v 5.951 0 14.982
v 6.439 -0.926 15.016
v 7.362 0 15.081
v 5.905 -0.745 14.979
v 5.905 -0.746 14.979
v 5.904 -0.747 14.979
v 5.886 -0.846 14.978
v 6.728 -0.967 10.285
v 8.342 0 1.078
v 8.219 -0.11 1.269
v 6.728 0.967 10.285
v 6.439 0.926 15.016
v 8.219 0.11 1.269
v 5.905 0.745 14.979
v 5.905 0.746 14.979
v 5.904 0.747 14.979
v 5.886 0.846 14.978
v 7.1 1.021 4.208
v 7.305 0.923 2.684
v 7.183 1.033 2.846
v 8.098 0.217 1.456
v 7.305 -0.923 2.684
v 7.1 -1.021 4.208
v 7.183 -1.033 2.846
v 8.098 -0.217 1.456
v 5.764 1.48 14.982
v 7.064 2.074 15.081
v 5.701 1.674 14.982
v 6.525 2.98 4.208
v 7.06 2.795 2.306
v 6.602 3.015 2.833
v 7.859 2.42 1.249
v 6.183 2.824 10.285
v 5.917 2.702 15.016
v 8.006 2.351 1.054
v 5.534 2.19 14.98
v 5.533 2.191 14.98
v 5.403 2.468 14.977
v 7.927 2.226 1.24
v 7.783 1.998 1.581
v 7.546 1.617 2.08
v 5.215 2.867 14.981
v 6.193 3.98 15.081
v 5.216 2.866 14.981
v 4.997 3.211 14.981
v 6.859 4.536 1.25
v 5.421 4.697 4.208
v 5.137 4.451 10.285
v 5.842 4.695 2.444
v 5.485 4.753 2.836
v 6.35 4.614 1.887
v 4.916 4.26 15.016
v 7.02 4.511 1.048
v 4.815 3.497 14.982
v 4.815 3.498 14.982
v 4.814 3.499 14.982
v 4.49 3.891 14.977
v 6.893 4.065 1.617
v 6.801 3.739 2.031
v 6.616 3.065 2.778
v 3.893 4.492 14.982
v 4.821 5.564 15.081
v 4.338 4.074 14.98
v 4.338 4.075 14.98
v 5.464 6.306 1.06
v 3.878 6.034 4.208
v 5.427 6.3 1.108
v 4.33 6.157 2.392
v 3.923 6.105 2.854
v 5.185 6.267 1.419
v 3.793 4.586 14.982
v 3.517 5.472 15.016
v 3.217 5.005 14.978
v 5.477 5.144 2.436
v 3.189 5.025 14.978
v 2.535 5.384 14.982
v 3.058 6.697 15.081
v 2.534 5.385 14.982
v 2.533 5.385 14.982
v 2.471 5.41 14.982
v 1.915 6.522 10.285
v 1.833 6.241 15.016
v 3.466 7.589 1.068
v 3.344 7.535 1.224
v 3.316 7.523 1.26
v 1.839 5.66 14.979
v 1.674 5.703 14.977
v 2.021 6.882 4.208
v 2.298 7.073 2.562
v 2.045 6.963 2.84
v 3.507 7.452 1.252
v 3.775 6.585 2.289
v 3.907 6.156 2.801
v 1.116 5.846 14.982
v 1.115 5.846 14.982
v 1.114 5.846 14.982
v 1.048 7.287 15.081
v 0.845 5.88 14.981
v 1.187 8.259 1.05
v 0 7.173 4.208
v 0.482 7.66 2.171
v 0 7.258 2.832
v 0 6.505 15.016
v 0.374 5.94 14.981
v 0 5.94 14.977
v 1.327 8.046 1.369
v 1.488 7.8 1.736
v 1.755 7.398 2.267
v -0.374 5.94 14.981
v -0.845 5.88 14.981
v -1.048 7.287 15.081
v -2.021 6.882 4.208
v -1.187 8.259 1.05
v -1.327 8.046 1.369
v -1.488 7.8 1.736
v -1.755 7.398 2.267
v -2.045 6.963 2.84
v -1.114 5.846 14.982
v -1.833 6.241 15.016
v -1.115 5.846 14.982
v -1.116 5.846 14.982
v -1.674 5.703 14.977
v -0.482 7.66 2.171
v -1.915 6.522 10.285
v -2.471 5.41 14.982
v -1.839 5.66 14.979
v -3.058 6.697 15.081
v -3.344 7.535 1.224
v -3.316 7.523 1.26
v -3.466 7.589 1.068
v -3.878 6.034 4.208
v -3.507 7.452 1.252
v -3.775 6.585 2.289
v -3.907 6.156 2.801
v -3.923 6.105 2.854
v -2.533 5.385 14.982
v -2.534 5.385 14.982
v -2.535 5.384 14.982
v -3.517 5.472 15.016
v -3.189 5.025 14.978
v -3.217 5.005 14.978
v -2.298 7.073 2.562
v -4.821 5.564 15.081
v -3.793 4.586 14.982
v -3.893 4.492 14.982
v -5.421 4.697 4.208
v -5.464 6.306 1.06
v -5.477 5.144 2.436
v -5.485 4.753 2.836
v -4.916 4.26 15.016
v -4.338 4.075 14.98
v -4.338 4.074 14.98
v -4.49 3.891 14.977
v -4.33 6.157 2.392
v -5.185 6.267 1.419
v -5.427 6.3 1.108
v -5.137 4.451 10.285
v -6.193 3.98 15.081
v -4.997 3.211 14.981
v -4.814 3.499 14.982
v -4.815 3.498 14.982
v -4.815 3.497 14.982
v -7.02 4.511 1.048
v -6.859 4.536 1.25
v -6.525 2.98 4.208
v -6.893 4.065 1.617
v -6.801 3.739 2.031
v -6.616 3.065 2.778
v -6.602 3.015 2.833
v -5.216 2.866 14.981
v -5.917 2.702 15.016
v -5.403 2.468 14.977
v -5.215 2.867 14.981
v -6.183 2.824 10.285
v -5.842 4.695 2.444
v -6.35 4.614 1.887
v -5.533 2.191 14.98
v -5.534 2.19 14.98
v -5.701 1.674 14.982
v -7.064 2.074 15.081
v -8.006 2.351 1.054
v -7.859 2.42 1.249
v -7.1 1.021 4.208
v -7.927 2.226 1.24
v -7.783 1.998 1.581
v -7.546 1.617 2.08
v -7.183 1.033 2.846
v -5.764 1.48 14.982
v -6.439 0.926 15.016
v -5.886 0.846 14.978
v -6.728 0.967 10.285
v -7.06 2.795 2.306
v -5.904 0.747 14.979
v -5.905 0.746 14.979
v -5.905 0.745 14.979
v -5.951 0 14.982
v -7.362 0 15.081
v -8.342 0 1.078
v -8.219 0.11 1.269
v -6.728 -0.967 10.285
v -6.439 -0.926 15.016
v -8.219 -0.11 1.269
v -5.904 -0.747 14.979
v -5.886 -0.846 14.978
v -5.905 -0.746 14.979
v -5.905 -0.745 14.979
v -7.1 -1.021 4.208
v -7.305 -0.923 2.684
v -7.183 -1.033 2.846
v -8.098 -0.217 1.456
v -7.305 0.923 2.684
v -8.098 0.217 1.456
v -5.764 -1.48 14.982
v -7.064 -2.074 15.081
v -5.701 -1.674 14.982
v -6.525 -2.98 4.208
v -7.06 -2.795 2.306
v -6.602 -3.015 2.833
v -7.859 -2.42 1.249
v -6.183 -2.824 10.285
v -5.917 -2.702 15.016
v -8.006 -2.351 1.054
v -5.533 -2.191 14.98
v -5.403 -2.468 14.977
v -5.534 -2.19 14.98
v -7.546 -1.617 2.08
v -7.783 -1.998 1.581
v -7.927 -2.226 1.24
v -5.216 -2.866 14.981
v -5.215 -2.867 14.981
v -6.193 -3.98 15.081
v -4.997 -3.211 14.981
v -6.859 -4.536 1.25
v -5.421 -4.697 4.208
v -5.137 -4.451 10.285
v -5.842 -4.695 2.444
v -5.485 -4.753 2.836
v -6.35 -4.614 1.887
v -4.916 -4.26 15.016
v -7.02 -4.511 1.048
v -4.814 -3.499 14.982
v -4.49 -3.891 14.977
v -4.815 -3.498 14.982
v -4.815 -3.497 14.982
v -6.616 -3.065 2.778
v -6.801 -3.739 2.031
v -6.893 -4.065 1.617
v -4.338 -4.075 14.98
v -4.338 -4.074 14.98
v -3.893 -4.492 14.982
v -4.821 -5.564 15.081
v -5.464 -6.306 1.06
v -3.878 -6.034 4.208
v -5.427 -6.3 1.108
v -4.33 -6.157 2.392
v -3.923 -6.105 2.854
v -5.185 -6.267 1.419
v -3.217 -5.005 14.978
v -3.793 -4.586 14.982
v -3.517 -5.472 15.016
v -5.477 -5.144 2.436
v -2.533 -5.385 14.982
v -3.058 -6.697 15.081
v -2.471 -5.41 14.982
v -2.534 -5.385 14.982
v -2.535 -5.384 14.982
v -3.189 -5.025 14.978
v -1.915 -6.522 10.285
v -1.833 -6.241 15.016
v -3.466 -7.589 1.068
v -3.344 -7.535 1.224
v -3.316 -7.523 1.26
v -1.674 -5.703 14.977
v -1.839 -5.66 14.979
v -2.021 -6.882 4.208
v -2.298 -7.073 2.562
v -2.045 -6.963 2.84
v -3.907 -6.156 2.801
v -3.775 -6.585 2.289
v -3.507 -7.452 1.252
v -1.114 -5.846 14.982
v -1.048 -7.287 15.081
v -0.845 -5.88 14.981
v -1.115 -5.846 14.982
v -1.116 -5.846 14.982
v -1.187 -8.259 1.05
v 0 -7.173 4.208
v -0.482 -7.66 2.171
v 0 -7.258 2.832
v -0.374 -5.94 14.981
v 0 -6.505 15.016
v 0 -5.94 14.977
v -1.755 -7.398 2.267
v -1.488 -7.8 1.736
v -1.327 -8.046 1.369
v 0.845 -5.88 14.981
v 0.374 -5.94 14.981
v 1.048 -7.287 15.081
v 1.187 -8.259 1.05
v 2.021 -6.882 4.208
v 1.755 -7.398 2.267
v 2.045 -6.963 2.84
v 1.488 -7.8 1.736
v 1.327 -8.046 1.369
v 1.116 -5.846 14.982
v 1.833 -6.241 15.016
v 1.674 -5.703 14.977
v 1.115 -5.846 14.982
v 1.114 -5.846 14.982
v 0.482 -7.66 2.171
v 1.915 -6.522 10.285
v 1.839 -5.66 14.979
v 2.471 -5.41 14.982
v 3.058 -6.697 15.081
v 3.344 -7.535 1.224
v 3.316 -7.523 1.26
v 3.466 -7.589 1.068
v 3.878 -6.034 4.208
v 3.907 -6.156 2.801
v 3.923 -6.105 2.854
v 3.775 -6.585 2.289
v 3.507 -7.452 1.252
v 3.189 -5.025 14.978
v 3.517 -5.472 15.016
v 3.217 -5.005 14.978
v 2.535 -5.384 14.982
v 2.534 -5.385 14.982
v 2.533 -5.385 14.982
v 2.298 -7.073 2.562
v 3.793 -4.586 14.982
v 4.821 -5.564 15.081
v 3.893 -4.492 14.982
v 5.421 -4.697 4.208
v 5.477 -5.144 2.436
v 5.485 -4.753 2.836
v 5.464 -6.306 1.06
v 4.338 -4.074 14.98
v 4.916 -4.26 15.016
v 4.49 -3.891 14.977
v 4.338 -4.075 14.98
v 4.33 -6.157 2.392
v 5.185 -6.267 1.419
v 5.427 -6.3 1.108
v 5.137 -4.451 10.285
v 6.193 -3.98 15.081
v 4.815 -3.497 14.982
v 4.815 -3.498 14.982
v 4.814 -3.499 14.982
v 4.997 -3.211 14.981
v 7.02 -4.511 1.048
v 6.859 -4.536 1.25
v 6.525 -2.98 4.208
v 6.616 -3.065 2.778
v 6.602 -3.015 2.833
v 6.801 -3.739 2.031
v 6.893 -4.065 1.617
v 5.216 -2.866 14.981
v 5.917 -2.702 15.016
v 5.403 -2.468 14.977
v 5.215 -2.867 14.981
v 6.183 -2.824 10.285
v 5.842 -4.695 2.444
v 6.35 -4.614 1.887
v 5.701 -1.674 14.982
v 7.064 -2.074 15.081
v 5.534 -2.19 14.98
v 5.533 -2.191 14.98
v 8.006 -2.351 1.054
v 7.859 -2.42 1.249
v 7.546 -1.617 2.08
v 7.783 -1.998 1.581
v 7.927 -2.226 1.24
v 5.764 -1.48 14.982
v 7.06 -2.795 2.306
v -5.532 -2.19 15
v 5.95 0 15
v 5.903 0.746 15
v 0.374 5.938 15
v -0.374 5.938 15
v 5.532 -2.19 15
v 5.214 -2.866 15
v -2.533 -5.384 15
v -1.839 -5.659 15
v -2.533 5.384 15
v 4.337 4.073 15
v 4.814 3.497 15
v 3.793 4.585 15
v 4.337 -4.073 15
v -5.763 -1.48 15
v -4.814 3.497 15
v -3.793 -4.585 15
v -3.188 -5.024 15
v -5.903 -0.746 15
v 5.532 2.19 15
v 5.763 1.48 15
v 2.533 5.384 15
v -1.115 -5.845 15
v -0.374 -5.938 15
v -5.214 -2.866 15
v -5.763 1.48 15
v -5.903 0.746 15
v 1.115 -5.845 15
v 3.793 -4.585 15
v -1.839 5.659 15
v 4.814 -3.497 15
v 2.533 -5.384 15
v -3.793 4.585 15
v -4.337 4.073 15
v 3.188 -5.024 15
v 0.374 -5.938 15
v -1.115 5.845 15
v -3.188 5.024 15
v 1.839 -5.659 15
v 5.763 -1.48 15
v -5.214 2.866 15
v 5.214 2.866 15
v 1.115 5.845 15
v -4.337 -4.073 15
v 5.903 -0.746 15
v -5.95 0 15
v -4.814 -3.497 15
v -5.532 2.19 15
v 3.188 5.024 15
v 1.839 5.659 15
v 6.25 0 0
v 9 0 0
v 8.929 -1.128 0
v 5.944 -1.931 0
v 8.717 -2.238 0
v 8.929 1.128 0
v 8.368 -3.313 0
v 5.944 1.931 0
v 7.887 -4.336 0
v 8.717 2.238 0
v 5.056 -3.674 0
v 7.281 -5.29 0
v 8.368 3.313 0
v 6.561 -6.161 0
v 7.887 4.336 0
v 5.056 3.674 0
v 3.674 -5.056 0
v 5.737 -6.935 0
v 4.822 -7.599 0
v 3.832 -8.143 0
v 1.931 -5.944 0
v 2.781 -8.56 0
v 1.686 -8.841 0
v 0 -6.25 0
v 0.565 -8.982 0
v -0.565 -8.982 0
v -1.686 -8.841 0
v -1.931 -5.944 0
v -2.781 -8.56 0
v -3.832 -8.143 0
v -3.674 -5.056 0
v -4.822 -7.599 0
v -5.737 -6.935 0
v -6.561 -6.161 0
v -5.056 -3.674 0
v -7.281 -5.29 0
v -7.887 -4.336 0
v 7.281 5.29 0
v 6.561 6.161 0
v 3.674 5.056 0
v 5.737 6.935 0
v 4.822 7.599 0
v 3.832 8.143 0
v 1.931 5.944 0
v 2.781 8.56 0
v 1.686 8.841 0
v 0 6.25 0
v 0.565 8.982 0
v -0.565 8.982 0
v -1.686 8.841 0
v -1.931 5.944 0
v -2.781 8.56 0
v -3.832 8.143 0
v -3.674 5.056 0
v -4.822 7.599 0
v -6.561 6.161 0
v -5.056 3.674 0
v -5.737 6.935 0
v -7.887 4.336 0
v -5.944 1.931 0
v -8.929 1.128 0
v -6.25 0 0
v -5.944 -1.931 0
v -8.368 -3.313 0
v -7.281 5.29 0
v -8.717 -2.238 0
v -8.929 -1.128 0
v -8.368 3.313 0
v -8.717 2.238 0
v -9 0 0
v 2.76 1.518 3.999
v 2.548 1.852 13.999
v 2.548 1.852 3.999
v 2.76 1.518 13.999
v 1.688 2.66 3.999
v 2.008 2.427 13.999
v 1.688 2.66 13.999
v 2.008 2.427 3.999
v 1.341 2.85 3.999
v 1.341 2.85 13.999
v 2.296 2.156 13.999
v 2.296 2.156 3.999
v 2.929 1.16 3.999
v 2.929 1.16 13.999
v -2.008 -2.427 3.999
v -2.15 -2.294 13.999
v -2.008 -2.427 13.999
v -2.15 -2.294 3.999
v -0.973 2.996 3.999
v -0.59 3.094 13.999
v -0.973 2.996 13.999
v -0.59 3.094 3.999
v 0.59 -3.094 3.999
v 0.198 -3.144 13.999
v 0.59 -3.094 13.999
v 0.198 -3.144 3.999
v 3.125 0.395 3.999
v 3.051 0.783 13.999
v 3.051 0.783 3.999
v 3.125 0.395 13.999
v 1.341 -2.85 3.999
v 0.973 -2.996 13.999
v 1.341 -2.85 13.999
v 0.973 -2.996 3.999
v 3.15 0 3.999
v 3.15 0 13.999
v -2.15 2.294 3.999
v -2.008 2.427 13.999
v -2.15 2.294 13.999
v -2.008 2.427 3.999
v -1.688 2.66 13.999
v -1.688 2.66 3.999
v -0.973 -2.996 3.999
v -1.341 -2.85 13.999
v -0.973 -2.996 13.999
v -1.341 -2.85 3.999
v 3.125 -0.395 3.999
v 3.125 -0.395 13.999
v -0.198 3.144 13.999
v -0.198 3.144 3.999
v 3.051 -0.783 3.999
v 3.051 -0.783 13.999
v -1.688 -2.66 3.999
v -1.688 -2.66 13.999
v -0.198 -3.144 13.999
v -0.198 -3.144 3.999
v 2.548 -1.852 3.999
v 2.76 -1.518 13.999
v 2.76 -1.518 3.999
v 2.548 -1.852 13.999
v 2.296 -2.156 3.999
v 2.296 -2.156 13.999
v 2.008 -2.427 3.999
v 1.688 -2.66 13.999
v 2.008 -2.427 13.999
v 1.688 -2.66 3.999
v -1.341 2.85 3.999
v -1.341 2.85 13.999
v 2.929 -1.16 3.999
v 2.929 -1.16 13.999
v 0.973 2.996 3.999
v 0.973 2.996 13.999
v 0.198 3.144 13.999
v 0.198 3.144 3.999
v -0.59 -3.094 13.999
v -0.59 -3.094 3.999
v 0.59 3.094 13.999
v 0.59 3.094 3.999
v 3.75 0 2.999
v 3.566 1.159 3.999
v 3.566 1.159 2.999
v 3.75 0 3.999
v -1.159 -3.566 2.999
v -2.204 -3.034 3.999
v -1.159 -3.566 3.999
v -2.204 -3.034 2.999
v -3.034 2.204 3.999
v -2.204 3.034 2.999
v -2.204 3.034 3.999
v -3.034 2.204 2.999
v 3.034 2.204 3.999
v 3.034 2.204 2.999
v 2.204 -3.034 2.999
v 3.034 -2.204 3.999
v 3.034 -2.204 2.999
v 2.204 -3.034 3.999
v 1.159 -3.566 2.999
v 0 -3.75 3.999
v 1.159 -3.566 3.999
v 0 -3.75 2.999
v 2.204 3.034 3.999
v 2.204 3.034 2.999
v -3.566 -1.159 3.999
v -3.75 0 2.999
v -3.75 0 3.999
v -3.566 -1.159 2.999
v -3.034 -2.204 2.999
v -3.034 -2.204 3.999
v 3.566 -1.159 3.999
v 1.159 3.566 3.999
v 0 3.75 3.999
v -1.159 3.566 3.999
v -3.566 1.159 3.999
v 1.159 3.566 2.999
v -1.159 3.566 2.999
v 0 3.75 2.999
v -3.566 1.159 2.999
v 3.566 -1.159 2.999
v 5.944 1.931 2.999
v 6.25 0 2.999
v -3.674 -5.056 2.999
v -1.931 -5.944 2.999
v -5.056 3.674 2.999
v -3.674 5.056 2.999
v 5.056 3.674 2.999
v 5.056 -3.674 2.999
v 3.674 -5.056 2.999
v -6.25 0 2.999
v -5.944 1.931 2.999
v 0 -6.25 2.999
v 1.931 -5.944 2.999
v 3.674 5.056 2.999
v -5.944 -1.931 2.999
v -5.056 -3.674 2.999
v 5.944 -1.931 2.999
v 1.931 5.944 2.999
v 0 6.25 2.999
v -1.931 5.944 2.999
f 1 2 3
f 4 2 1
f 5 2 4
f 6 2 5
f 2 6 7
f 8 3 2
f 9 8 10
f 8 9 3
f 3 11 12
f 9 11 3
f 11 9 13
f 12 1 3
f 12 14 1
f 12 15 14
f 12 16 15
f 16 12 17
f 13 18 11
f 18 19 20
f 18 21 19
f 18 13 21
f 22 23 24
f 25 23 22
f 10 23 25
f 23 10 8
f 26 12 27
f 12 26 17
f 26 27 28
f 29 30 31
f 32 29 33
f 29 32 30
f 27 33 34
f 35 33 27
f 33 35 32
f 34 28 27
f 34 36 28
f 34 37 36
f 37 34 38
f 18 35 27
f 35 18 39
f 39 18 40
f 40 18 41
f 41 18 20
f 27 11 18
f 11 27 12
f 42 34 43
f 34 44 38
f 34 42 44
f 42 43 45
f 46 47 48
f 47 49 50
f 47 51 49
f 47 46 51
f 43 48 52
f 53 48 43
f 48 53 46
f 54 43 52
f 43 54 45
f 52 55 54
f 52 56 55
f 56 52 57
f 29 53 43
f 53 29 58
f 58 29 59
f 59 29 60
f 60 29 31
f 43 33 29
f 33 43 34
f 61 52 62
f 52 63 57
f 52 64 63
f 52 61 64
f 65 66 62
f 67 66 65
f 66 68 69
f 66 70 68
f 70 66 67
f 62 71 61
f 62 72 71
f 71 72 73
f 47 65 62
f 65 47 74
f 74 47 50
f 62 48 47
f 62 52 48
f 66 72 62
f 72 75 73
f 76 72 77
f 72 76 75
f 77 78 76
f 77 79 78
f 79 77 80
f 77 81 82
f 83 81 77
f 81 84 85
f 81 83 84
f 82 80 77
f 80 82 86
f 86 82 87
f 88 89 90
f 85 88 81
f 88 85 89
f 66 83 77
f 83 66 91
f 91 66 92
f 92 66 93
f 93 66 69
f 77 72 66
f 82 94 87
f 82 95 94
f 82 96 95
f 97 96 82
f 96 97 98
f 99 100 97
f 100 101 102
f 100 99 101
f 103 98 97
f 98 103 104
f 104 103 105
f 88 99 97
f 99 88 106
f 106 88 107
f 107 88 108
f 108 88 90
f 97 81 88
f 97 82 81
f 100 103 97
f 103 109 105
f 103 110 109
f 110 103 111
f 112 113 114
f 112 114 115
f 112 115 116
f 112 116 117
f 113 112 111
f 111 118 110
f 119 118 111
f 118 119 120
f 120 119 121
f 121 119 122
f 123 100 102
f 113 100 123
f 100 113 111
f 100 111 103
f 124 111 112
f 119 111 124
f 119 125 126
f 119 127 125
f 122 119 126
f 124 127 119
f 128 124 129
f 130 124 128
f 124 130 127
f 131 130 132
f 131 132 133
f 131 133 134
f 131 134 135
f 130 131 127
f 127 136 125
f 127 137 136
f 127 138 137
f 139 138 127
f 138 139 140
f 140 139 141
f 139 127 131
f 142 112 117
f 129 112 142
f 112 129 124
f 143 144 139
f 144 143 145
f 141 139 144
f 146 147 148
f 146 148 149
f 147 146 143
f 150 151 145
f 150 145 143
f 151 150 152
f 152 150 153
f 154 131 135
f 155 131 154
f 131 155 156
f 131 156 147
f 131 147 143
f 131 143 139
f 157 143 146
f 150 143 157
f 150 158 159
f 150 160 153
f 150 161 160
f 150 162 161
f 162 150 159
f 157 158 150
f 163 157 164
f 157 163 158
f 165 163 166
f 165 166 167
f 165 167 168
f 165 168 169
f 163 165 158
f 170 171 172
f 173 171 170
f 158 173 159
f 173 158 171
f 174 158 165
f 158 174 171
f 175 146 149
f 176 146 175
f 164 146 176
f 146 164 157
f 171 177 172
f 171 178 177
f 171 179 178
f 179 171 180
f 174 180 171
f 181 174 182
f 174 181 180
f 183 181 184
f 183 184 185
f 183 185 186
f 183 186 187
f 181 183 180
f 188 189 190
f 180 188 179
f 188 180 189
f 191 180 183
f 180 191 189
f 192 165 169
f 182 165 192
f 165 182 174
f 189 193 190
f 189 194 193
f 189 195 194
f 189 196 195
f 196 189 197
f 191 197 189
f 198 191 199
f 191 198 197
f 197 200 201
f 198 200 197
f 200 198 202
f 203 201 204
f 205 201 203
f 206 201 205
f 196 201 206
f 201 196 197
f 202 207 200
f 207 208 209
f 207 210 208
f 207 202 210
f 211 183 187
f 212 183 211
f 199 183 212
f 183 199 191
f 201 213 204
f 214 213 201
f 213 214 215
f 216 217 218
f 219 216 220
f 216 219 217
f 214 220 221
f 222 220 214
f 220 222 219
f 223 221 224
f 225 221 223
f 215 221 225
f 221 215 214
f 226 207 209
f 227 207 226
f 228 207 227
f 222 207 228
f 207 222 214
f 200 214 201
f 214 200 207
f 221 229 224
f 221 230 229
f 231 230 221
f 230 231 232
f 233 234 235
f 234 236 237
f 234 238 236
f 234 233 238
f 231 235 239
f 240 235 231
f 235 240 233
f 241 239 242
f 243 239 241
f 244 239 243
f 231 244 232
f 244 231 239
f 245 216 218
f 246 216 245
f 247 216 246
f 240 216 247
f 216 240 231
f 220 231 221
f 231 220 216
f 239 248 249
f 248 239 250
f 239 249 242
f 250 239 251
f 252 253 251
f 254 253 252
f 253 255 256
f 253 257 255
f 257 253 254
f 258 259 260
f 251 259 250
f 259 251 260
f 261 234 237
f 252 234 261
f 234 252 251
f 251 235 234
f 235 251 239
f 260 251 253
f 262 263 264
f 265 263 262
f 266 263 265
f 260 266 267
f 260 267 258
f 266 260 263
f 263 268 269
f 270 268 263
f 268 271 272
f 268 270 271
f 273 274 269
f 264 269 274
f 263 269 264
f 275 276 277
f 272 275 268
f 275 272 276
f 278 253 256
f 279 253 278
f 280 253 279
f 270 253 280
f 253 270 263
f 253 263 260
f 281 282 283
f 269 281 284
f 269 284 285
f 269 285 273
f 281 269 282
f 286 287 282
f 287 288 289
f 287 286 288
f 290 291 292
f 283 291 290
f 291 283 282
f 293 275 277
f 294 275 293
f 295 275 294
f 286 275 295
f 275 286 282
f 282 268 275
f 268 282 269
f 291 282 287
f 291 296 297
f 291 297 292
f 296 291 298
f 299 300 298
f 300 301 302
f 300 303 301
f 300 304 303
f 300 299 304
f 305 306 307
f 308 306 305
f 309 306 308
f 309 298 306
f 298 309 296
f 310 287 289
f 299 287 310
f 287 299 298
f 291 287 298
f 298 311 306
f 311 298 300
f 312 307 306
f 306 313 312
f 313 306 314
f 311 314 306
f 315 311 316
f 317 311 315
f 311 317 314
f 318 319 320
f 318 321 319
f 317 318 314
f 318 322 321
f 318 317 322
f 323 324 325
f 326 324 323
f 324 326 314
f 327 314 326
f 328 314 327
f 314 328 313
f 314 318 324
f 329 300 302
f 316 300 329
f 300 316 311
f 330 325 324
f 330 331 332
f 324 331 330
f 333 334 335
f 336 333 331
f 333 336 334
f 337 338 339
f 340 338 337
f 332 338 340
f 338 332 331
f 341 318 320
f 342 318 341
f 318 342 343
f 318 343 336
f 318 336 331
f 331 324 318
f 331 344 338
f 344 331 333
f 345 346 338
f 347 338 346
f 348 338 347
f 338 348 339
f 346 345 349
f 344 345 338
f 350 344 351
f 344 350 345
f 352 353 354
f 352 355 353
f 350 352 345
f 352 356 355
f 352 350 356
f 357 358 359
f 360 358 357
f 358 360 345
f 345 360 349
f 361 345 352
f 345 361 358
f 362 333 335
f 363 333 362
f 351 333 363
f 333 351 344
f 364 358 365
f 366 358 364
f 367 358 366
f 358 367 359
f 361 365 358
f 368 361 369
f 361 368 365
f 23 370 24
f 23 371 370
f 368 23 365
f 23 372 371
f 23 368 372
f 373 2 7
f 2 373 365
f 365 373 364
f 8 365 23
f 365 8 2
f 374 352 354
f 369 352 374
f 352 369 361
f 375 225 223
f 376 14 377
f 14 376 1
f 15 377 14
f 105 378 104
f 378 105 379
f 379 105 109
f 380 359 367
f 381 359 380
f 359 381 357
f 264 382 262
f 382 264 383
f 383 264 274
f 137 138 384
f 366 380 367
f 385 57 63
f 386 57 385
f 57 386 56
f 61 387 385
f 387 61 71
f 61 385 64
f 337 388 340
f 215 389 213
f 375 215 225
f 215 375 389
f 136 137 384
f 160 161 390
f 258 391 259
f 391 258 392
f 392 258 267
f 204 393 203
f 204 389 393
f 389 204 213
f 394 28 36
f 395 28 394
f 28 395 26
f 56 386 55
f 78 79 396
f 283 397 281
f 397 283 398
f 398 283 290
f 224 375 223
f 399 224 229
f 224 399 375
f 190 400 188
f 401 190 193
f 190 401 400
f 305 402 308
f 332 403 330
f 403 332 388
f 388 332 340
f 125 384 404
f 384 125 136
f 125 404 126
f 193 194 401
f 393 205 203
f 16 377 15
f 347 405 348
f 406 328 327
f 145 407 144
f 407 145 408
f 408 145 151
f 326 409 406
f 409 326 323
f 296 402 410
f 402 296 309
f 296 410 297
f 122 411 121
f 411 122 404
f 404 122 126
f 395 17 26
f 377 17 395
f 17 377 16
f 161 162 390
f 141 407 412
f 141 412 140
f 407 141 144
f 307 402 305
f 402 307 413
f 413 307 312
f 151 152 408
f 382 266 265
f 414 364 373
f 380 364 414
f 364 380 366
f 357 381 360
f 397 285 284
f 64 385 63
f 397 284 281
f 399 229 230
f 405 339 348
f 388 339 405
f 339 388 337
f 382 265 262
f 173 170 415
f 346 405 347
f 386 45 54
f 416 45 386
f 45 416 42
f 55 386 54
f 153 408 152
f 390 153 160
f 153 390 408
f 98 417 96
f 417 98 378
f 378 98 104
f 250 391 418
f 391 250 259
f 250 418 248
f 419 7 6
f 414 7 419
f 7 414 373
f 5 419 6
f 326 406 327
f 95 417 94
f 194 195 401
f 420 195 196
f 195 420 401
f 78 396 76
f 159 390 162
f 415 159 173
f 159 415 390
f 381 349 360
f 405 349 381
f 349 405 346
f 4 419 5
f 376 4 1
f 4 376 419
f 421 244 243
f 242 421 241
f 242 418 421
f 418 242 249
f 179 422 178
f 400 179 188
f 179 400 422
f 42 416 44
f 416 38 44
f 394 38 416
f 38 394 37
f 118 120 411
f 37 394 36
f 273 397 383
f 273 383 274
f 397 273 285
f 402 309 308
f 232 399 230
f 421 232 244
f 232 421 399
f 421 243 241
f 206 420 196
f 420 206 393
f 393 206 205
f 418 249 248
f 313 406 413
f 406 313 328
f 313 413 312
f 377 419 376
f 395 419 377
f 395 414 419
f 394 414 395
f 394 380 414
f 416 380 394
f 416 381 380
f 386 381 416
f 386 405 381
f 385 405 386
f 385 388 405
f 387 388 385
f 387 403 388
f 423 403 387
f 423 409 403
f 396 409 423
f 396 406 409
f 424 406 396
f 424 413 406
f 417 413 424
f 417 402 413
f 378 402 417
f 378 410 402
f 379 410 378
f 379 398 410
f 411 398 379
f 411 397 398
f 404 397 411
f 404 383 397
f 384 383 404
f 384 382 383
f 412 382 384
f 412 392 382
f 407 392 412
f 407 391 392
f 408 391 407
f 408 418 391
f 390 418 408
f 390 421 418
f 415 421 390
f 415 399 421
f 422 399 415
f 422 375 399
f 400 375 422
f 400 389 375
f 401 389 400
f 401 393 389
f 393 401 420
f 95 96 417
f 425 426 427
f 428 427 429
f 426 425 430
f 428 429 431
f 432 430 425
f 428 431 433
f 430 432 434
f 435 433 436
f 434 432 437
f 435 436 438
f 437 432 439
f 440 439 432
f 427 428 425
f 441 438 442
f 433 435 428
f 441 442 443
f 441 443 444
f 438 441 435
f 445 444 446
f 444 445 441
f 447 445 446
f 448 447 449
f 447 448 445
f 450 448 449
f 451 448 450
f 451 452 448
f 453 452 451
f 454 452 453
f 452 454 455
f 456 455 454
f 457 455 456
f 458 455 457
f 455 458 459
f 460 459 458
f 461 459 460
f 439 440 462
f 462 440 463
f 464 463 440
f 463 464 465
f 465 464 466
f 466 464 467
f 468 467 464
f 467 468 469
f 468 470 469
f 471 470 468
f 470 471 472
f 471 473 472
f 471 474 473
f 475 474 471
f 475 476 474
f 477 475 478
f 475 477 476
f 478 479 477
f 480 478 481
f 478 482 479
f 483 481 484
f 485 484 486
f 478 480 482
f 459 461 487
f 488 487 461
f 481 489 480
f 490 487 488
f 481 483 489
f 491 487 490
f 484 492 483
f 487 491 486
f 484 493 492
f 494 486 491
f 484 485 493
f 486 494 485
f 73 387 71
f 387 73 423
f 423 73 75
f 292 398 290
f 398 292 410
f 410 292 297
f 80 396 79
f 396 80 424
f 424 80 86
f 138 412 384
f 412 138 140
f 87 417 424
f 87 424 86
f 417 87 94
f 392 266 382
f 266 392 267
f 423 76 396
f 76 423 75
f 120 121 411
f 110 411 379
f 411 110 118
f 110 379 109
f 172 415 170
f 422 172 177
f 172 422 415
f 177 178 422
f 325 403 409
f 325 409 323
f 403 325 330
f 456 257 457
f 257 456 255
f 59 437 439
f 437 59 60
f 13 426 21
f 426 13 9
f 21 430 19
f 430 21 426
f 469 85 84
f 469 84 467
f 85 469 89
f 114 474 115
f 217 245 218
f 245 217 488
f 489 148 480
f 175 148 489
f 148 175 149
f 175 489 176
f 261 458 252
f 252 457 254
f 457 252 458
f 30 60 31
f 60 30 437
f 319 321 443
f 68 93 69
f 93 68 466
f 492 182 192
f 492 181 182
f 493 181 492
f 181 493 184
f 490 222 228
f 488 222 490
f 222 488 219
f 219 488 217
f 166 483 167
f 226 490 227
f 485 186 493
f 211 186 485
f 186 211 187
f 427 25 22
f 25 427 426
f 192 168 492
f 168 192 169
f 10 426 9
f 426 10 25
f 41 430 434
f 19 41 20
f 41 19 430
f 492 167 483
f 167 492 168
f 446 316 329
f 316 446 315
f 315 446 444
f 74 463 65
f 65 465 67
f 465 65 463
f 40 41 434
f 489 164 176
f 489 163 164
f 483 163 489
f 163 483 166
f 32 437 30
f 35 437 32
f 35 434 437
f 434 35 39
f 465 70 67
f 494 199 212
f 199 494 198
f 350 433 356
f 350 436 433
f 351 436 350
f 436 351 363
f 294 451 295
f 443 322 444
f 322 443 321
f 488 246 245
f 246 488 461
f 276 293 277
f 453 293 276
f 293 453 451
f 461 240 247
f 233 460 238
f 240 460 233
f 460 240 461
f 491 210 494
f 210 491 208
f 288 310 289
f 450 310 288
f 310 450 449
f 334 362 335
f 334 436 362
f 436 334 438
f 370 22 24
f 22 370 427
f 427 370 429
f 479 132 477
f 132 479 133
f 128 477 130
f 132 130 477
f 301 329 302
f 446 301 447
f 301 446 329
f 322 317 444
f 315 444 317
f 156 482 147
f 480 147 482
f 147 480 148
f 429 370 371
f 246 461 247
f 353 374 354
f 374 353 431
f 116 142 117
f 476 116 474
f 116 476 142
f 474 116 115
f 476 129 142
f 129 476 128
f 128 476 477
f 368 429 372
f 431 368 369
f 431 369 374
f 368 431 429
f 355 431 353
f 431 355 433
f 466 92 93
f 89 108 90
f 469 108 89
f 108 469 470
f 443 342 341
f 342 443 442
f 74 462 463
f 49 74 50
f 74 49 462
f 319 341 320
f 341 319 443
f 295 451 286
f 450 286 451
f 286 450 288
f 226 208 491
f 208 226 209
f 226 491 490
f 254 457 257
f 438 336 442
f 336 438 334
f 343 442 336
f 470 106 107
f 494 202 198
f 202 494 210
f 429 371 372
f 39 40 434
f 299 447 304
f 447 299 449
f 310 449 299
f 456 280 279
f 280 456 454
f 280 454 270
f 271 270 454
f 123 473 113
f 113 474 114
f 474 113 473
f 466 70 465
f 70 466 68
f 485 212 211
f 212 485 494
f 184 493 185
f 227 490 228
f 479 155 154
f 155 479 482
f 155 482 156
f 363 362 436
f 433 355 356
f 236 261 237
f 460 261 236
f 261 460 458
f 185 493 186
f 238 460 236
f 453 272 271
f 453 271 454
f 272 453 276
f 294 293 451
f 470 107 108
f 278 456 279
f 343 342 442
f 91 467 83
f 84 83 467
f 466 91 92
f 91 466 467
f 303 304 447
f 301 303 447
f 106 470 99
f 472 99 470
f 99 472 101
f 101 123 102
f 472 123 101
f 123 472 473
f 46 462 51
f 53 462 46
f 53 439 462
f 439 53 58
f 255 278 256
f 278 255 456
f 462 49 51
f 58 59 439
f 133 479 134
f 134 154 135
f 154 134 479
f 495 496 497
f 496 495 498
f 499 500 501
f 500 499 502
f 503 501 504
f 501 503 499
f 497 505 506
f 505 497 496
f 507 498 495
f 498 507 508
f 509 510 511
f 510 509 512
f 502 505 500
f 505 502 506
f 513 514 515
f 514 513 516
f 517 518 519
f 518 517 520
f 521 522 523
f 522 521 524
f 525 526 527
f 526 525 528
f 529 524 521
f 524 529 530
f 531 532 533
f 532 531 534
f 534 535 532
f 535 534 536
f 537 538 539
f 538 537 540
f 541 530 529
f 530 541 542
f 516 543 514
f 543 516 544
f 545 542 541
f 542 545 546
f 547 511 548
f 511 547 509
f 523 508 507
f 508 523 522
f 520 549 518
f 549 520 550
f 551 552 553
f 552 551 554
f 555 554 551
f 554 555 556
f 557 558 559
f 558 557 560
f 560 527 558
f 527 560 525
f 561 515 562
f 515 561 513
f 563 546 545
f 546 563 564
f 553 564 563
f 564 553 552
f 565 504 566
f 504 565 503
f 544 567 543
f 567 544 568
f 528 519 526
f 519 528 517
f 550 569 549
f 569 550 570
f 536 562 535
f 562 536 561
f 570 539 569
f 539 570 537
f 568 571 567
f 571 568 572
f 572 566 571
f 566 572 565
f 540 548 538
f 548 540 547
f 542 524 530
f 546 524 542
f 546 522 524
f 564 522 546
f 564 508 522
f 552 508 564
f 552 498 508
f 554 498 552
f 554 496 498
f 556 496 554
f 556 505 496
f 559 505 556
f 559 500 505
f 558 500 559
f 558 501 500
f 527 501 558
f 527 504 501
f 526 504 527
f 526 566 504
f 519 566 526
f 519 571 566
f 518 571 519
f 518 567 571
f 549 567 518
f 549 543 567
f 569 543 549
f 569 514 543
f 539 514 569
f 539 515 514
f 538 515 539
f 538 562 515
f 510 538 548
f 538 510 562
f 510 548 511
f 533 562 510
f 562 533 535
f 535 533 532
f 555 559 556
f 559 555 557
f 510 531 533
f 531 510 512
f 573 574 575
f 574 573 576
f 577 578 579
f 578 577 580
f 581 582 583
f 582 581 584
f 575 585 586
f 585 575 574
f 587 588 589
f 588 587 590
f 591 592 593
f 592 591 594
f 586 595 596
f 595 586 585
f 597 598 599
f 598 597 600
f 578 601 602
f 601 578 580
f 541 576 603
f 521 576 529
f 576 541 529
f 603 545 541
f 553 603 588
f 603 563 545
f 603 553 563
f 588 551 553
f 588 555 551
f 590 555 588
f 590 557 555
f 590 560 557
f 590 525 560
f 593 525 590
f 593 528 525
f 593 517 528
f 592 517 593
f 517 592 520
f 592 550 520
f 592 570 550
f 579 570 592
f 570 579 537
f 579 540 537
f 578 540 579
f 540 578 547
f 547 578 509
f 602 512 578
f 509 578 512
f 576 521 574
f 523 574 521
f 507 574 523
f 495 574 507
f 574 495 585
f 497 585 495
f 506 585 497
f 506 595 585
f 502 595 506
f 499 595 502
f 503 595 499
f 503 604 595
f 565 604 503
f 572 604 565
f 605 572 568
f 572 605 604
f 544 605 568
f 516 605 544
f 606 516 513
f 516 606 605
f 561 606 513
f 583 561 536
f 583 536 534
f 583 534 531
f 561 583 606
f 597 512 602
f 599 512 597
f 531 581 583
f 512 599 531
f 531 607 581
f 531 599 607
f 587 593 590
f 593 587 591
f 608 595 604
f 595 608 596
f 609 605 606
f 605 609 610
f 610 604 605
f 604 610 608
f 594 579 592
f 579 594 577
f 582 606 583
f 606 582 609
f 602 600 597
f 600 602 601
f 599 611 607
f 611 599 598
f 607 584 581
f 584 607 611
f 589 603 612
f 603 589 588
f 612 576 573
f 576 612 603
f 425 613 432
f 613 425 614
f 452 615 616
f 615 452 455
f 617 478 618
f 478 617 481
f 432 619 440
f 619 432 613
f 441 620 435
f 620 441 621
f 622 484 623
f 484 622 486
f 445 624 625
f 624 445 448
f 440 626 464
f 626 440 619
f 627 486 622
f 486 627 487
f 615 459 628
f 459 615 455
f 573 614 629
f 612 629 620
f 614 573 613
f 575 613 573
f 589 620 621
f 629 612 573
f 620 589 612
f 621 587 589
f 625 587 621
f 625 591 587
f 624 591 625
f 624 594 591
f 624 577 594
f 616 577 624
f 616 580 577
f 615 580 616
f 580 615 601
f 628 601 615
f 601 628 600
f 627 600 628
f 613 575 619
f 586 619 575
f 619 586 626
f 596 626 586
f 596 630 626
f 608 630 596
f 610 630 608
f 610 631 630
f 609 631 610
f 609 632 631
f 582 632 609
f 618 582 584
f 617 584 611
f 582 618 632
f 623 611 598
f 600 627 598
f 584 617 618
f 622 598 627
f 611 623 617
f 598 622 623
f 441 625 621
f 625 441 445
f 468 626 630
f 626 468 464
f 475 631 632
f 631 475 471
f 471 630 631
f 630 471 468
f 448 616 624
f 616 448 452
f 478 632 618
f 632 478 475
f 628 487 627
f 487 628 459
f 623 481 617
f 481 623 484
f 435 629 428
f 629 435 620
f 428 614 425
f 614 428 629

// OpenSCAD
//////////////////////////
// Customizable settings
//////////////////////////


// Diameter of the hole on the bottom (in mm).
// 底面の穴の直径（単位：mm）
HoleDiameter = 6.0 + 0.3;

// Depth of the hole in the bottom (in mm).  If you want the hole to go all the way through then set this to a number larger than the total height of the object.
// 底面に開ける穴の深さ（単位：mm）。 穴を完全に貫通させたい場合は、オブジェクトの全高よりも大きな数値を設定してください。
HoleDepth = 14;

// If you want a D-shaped hole, set this to the thickness of the flat side (in mm).  Larger values for the flat make the hole smaller.
// D型の穴にしたい場合は、平らな面の厚さ（単位：mm）を設定してください。 平面の値を大きくすると、穴が小さくなります。
HoleFlatThickness = 1.0;

Hole2Diameter = 7.5;
Hole2Depth = 4;

Hole3Diameter = 12.5;
Hole3Depth = 3;


// Height (in mm).  If dome cap is selected, it is not included in height.  The shaft length is also not counted.
// 高さ（単位：mm）。 ドームキャップを選択した場合、高さには含まれません。 シャフトの長さもカウントされません。
KnobHeight = 15;

// Diameter of base of round part of knob (in mm).  (Knurled ridges are not included in this measurement.)
// ノブの丸い部分の底面の直径（単位：mm）。 (ローレットの稜線はこの測定に含まれません）
KnobDiameter = 14;

// Shape of top of knob.  "Recessed" type can be painted.
// ノブの上部の形状。 「埋め込みタイプは塗装が可能です。
CapType = 0;	// [0:Flat, 1:Recessed, 2:Dome]

// Do you want a large timer-knob style pointer?
// タイマーノブのような大きなポインターが欲しい？
TimerKnob= 0;	// [0:No, 1:Yes]

// Would you like a divot on the top to indicate direction?
// トップに方向性を示すディボットを入れますか？
Pointer1 = 0;	// [0:No, 1:Yes]

// Would you like a line (pointer) on the front to indicate direction?
// フロントに方向を示すライン（ポインター）が欲しいですか？
Pointer2 = 0;	// [0:No, 1:Yes]

// Do you want finger ridges around the knob?
// ノブの周りに指の隆起が必要ですか？
Knurled = 1;	// [0:No, 1:Yes]

// 0 = A cylindrical knob, any other value will taper the knob.
// 0 = 円筒形のノブ、それ以外の値ではノブが細くなります。
TaperPercentage = 15;		// [0:0%, 10:10%, 20:20%, 30:30%, 40:40%, 50:50%]

// Width of "dial" ring (in mm).  Set to zero if you don't want the ring.
// ダイヤル "リングの幅（単位：mm）。 リングが不要な場合はゼロに設定してください。
RingWidth = 2;

// The number of markings on the dial.  Set to zero if you don't want markings.  (RingWidth must be non-zero.)
// ダイヤル上のマーキングの数。 マークを付けたくない場合はゼロに設定します。 (RingWidthは0以外でなければならない)
RingMarkings = 0;

// diameter of the hole for the setscrew (in mm).  If you don't need a hole, set this to zero.
// 止めねじの穴の直径（単位：mm）。 穴が必要ない場合は、0に設定してください。
ScrewHoleDiameter = 0;

// Length of the shaft on the bottom of the knob (in mm).  If you don't want a shaft, set this value to zero.
// ノブの底面にあるシャフトの長さ（単位：mm）。 シャフトが不要な場合は、この値をゼロにしてください。
ShaftLength = 0;

// Diameter of the shaft on the bottom of the knob (in mm).  (ShaftLength must be non-zero.)
// ノブの下部にあるシャフトの直径（単位：mm）。 (ShaftLengthは0以外でなければなりません)
ShaftDiameter = 10;

// Would you like a notch in the shaft?  It can be used for a press-on type knob (rather than using a setscrew).  (ShaftLength must be non-zero.)
// 軸に切り込みを入れますか？ プレスオンタイプのノブに使用できます（止めねじを使用するのではなく）。 (ShaftLengthは0以外でなければなりません。)
NotchedShaft = 0;	// [0:No, 1:Yes]



//////////////////////////
//Advanced settings
//////////////////////////

RingThickness = 5*1;
DivotDepth = 1.5*1;
MarkingWidth = 1.5*1;
DistanceBetweenKnurls = 2*1;
TimerKnobConst = 1.8*1;



//////////////////////////
//Calculations
//////////////////////////

PI=3.14159265*1;
KnobMajorRadius = KnobDiameter/2;
KnobMinorRadius = KnobDiameter/2 * (1 - TaperPercentage/100);
KnobRadius = KnobMinorRadius + (KnobMajorRadius-KnobMinorRadius)/2;
KnobCircumference = PI*KnobDiameter;
Knurls = round(KnobCircumference/DistanceBetweenKnurls);
Divot=CapType;

TaperAngle=asin(KnobHeight / (sqrt(pow(KnobHeight, 2) +
		pow(KnobMajorRadius-KnobMinorRadius,2)))) - 90;

DivotRadius = KnobMinorRadius*.4;


union()
{
translate([0, 0, (ShaftLength==0)? 0 : ShaftLength-0.001])
difference()
{
union()
{
	// Primary knob cylinder
	cylinder(h=KnobHeight, r1=KnobMajorRadius, r2=KnobMinorRadius,
			$fn=50);
	
	if (Knurled)
		for (i=[0 : Knurls-1])
			rotate([0, 0, i * (360/Knurls)])
				translate([KnobRadius, 0, KnobHeight/2])
					rotate([0, TaperAngle, 0]) rotate([0, 0, 45])
						cube([2, 2, KnobHeight+.001], center=true);

 	if (RingMarkings>0)
		for (i=[0 : RingMarkings-1])
			rotate([0, 0, i * (360/RingMarkings)])
				translate([KnobMajorRadius + RingWidth/2, 0, 1])
					cube([RingWidth*.5, MarkingWidth, 2], center=true);		
	
	if (Pointer2==1)
		translate([KnobRadius, 0, KnobHeight/2-2])
			rotate([0, TaperAngle, 0])
                translate([-9/2, -3/2, -6])
				cube([9, 3, 8], center=false);		

	if (RingWidth>0)
		translate([0, 0, RingThickness/2])
			cylinder(r1=KnobMajorRadius + RingWidth, r2=KnobMinorRadius,
					h=RingThickness, $fn=50, center=true);

	if (Divot==2)
		translate([0, 0, KnobHeight])
			difference()
			{
				scale([1, 1, 0.5])
					sphere(r=KnobMinorRadius, $fn=50, center=true);

				translate([0, 0, 0-(KnobMinorRadius+.001)])
					cube([KnobMinorRadius*2.5, KnobMinorRadius*2.5,
							KnobMinorRadius*2], center=true);
			}

	if (TimerKnob==1) intersection()
		{
			translate([0, 0, 0-(KnobDiameter*TimerKnobConst) + KnobHeight])
			sphere(r=KnobDiameter*TimerKnobConst, $fn=50, center=true);		
	
			translate([0-(KnobDiameter*TimerKnobConst)*0.1, 0,
					KnobHeight/2])
				scale([1, 0.5, 1])
					cylinder(h=KnobHeight, r=(KnobDiameter*TimerKnobConst) *
							0.8, $fn=3, center=true);
		}
}

// Pointer1: Offset hemispherical divot
if (Pointer1==1)
	translate([KnobMinorRadius*.55, 0, KnobHeight + DivotRadius*.6])
		sphere(r=DivotRadius, $fn=40);

// Divot1: Centered cylynrical divot
if (Divot==1)
	translate([0, 0, KnobHeight])
		cylinder(h=DivotDepth*2, r=KnobMinorRadius-1.5, $fn=50,
				center=true);

if (ShaftLength==0)
{
	// Hole for shaft
	translate([0, 0, HoleDepth/2 - 0.001])
		difference()
		{
			cylinder(r=HoleDiameter/2, h=HoleDepth, $fn=50,
					center=true);
	
			// Flat for D-shaped hole
			translate([(0-HoleDiameter)+HoleFlatThickness, 0, 0])
				cube([HoleDiameter, HoleDiameter, HoleDepth+.001],
						center=true);
		}
        // Hole2
        if (Hole2Depth > 0) {
            translate([0, 0, Hole2Depth/2 - 0.001])
                cylinder(r=Hole2Diameter/2, h=Hole2Depth, $fn=20, center=true);
        }
        // Hole3
        if (Hole3Depth > 0) {
            translate([0, 0, Hole3Depth/2 - 0.001])
                cylinder(r=Hole3Diameter/2, h=Hole3Depth, $fn=20, center=true);
        }
	
	// Hole for setscrew
	if (ScrewHoleDiameter>0)
		translate([0 - (KnobMajorRadius+RingWidth+1)/2, 0,
				HoleDepth/2])
			rotate([0, 90, 0])
			cylinder(h=(KnobMajorRadius+RingWidth+1),
					r=ScrewHoleDiameter/2, $fn=20, center=true);
}

// Make sure bottom ends at z=0
translate([0, 0, -10])
	cube([(KnobMajorRadius+RingWidth) * 4,
			(KnobMajorRadius+RingWidth) * 4, 20], center=true);
}

if (ShaftLength>0)
	difference()
	{
		translate([0, 0, ShaftLength/2])
			cylinder(h=ShaftLength, r=ShaftDiameter/2, $fn=20,
					center=true);

		if (NotchedShaft==1)
		{
			cube([HoleDiameter/2, ShaftDiameter*2, ShaftLength],
					center=true);
		}

		// Hole for shaft
		translate([0, 0, HoleDepth/2 - 0.001])
			difference()
			{
				cylinder(r=HoleDiameter/2, h=HoleDepth, $fn=20,
						center=true);
		
				// Flat for D-shaped hole
				translate([(0-HoleDiameter)+HoleFlatThickness, 0, 0])
					cube([HoleDiameter, HoleDiameter, HoleDepth+.001],
							center=true);
			}
		            
        
		// Hole for setscrew
		if (ScrewHoleDiameter>0)
			translate([0 - (KnobMajorRadius+RingWidth+1)/2, 0,
					HoleDepth/2])
				rotate([0, 90, 0])
				cylinder(h=(KnobMajorRadius+RingWidth+1),
						r=ScrewHoleDiameter/2, $fn=20, center=true);
	}
}
